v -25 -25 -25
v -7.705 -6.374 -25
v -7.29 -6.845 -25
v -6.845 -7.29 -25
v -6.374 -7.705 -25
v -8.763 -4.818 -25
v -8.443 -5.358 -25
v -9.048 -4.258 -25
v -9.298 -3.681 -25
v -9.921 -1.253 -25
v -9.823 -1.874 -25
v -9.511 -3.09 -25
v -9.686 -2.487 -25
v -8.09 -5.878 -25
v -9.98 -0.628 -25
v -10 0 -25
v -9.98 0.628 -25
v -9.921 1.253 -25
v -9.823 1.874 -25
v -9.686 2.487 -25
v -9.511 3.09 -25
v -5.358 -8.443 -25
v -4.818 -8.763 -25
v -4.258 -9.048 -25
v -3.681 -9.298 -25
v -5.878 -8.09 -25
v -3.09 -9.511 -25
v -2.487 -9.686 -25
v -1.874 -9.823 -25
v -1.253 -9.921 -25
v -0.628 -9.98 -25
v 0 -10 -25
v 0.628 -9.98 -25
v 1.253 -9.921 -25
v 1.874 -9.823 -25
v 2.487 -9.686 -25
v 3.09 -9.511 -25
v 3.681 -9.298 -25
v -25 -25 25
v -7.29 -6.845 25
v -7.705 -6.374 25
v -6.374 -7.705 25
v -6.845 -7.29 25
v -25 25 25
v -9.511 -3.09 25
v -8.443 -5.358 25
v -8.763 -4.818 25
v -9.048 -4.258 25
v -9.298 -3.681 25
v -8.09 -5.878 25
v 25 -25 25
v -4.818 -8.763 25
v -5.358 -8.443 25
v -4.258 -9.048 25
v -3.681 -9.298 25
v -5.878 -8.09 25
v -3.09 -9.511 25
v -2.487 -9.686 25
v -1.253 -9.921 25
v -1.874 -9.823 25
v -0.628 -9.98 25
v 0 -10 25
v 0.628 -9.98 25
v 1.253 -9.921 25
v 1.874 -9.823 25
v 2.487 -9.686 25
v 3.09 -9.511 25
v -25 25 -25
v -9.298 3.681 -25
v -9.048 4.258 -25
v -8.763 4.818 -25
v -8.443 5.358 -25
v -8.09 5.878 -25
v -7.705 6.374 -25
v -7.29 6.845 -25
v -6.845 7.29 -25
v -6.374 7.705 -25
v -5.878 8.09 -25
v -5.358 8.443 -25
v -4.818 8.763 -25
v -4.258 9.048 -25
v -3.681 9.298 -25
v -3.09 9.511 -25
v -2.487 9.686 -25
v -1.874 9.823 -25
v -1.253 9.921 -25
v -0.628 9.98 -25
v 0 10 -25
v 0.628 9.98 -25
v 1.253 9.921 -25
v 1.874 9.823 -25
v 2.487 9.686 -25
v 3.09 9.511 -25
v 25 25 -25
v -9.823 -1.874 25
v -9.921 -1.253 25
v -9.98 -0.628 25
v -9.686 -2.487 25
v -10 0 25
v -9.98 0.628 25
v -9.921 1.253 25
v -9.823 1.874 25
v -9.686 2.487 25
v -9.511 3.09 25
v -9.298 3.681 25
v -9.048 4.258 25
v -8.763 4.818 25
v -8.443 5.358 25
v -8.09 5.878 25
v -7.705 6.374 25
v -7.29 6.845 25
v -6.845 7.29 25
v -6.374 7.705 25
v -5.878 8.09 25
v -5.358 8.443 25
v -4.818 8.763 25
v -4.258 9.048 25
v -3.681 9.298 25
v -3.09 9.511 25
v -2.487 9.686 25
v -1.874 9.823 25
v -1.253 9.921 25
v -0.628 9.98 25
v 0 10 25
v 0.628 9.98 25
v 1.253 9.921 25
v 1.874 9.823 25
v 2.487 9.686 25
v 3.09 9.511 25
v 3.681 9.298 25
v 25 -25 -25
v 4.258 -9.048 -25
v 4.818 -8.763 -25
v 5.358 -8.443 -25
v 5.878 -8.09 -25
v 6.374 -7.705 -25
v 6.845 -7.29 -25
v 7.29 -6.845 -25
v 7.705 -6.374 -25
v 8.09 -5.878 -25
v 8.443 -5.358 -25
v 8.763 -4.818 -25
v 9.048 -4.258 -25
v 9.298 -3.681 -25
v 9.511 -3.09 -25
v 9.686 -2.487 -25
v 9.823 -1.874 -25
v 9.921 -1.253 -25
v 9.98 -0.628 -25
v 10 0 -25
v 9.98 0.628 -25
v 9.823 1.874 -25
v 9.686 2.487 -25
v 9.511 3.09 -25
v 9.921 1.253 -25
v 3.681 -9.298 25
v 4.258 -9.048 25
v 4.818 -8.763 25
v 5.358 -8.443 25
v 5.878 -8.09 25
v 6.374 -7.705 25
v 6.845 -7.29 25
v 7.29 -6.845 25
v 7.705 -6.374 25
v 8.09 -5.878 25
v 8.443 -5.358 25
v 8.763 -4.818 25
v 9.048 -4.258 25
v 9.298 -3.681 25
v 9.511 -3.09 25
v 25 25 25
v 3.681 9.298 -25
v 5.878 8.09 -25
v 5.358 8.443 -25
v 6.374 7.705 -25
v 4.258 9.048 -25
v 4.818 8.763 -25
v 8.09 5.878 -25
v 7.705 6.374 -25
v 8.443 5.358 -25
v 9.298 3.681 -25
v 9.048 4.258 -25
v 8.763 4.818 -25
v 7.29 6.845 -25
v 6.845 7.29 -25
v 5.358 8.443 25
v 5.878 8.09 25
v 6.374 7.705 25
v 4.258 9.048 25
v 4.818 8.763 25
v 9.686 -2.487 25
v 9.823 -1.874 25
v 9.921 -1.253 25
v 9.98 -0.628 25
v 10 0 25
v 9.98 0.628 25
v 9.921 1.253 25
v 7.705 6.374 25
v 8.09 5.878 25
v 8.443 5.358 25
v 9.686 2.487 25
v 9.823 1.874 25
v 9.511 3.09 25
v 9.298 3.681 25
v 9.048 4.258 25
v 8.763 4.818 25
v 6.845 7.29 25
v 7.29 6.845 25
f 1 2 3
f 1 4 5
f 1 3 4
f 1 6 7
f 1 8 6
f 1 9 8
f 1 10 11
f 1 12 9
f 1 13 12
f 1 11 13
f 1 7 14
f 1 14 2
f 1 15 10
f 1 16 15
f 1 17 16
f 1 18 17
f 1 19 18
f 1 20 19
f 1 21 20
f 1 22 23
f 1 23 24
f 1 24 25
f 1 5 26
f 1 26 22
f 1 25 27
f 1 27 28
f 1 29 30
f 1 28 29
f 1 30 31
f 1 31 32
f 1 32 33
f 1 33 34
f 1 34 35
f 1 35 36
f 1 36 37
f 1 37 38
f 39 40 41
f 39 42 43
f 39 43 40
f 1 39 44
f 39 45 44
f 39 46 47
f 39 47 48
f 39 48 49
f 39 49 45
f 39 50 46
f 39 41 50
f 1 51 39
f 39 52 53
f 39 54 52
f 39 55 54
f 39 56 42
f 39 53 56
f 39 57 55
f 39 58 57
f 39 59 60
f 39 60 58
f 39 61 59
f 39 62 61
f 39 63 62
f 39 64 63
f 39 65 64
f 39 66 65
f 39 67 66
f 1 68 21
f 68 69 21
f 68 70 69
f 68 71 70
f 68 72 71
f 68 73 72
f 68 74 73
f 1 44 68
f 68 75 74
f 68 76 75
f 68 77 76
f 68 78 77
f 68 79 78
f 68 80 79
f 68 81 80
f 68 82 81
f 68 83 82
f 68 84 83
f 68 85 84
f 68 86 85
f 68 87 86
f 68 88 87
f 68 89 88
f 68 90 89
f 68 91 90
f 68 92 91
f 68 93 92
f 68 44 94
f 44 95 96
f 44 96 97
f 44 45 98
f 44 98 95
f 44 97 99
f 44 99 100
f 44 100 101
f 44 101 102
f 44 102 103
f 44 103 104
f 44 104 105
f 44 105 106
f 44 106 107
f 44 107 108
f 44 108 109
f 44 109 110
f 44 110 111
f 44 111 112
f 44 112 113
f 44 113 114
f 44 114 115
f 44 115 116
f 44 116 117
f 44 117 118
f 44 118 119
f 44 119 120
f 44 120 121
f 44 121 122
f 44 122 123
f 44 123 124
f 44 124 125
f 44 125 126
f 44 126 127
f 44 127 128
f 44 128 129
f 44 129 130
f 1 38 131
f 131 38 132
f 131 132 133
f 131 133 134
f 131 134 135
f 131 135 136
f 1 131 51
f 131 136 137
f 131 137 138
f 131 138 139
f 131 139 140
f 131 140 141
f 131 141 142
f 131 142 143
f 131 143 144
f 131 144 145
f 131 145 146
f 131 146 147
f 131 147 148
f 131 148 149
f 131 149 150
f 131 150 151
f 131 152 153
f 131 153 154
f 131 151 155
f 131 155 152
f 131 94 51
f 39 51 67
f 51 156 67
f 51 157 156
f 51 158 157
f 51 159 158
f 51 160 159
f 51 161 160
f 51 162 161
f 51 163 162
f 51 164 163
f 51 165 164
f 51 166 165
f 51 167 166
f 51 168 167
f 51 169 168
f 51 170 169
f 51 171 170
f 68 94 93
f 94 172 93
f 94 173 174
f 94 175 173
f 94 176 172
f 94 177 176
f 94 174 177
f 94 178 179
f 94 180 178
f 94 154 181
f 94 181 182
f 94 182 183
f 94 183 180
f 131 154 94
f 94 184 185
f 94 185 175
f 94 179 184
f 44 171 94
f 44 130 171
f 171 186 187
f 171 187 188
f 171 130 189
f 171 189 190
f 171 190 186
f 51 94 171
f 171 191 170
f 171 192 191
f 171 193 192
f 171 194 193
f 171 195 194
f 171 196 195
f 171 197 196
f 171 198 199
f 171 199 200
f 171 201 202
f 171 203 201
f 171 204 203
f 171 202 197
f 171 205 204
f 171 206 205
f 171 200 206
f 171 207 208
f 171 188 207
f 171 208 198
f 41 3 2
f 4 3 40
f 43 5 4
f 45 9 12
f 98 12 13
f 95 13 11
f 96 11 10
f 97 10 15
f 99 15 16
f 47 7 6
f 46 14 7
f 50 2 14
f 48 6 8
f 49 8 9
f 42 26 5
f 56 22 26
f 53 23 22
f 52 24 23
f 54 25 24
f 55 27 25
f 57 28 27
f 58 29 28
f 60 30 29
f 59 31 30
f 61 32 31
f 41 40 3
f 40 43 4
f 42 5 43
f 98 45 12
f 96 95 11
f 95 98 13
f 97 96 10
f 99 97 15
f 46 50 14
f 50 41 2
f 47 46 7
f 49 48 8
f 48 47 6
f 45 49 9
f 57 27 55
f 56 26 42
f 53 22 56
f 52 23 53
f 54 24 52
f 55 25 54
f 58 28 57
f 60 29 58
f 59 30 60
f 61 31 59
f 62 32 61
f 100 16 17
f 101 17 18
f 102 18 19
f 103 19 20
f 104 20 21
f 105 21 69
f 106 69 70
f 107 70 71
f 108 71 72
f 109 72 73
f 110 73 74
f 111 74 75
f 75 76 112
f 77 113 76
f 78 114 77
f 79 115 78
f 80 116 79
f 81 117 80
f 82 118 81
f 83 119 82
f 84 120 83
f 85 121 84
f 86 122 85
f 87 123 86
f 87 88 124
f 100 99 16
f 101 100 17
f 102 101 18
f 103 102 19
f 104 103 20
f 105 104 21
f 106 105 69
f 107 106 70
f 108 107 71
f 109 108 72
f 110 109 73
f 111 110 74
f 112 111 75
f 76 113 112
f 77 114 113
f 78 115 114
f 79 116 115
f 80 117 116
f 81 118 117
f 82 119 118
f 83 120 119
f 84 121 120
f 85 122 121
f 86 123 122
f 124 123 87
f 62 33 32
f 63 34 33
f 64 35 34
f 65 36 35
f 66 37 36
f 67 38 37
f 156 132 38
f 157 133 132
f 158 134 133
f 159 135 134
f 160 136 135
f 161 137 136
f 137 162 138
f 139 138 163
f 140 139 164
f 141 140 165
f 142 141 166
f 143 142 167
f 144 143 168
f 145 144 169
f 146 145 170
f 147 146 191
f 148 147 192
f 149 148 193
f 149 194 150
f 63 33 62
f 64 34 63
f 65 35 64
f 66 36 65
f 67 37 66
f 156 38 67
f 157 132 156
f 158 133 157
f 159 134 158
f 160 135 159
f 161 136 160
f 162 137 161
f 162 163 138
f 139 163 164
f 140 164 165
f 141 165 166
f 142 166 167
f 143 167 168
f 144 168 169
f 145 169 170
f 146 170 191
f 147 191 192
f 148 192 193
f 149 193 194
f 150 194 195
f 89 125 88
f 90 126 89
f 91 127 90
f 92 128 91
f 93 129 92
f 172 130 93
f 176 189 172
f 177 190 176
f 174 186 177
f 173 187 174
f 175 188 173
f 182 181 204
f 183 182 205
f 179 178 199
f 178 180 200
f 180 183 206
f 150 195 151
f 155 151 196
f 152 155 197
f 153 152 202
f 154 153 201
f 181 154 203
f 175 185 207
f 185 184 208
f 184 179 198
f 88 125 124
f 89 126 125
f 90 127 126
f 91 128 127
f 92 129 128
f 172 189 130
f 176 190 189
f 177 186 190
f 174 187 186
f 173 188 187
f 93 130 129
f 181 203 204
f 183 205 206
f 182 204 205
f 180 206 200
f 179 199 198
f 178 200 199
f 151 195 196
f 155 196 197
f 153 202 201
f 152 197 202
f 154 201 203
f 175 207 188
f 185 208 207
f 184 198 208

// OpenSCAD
// 円柱の滑らかさ
$fn = 100;

difference() {
    // 50mm 角の立方体(原点中心)
    cube([50, 50, 50], center = true);

    // 直径 20mm の貫通穴(z 軸方向、確実に貫通させるため高さに余裕を持たせる)
    cylinder(h = 52, d = 20, center = true);
}
